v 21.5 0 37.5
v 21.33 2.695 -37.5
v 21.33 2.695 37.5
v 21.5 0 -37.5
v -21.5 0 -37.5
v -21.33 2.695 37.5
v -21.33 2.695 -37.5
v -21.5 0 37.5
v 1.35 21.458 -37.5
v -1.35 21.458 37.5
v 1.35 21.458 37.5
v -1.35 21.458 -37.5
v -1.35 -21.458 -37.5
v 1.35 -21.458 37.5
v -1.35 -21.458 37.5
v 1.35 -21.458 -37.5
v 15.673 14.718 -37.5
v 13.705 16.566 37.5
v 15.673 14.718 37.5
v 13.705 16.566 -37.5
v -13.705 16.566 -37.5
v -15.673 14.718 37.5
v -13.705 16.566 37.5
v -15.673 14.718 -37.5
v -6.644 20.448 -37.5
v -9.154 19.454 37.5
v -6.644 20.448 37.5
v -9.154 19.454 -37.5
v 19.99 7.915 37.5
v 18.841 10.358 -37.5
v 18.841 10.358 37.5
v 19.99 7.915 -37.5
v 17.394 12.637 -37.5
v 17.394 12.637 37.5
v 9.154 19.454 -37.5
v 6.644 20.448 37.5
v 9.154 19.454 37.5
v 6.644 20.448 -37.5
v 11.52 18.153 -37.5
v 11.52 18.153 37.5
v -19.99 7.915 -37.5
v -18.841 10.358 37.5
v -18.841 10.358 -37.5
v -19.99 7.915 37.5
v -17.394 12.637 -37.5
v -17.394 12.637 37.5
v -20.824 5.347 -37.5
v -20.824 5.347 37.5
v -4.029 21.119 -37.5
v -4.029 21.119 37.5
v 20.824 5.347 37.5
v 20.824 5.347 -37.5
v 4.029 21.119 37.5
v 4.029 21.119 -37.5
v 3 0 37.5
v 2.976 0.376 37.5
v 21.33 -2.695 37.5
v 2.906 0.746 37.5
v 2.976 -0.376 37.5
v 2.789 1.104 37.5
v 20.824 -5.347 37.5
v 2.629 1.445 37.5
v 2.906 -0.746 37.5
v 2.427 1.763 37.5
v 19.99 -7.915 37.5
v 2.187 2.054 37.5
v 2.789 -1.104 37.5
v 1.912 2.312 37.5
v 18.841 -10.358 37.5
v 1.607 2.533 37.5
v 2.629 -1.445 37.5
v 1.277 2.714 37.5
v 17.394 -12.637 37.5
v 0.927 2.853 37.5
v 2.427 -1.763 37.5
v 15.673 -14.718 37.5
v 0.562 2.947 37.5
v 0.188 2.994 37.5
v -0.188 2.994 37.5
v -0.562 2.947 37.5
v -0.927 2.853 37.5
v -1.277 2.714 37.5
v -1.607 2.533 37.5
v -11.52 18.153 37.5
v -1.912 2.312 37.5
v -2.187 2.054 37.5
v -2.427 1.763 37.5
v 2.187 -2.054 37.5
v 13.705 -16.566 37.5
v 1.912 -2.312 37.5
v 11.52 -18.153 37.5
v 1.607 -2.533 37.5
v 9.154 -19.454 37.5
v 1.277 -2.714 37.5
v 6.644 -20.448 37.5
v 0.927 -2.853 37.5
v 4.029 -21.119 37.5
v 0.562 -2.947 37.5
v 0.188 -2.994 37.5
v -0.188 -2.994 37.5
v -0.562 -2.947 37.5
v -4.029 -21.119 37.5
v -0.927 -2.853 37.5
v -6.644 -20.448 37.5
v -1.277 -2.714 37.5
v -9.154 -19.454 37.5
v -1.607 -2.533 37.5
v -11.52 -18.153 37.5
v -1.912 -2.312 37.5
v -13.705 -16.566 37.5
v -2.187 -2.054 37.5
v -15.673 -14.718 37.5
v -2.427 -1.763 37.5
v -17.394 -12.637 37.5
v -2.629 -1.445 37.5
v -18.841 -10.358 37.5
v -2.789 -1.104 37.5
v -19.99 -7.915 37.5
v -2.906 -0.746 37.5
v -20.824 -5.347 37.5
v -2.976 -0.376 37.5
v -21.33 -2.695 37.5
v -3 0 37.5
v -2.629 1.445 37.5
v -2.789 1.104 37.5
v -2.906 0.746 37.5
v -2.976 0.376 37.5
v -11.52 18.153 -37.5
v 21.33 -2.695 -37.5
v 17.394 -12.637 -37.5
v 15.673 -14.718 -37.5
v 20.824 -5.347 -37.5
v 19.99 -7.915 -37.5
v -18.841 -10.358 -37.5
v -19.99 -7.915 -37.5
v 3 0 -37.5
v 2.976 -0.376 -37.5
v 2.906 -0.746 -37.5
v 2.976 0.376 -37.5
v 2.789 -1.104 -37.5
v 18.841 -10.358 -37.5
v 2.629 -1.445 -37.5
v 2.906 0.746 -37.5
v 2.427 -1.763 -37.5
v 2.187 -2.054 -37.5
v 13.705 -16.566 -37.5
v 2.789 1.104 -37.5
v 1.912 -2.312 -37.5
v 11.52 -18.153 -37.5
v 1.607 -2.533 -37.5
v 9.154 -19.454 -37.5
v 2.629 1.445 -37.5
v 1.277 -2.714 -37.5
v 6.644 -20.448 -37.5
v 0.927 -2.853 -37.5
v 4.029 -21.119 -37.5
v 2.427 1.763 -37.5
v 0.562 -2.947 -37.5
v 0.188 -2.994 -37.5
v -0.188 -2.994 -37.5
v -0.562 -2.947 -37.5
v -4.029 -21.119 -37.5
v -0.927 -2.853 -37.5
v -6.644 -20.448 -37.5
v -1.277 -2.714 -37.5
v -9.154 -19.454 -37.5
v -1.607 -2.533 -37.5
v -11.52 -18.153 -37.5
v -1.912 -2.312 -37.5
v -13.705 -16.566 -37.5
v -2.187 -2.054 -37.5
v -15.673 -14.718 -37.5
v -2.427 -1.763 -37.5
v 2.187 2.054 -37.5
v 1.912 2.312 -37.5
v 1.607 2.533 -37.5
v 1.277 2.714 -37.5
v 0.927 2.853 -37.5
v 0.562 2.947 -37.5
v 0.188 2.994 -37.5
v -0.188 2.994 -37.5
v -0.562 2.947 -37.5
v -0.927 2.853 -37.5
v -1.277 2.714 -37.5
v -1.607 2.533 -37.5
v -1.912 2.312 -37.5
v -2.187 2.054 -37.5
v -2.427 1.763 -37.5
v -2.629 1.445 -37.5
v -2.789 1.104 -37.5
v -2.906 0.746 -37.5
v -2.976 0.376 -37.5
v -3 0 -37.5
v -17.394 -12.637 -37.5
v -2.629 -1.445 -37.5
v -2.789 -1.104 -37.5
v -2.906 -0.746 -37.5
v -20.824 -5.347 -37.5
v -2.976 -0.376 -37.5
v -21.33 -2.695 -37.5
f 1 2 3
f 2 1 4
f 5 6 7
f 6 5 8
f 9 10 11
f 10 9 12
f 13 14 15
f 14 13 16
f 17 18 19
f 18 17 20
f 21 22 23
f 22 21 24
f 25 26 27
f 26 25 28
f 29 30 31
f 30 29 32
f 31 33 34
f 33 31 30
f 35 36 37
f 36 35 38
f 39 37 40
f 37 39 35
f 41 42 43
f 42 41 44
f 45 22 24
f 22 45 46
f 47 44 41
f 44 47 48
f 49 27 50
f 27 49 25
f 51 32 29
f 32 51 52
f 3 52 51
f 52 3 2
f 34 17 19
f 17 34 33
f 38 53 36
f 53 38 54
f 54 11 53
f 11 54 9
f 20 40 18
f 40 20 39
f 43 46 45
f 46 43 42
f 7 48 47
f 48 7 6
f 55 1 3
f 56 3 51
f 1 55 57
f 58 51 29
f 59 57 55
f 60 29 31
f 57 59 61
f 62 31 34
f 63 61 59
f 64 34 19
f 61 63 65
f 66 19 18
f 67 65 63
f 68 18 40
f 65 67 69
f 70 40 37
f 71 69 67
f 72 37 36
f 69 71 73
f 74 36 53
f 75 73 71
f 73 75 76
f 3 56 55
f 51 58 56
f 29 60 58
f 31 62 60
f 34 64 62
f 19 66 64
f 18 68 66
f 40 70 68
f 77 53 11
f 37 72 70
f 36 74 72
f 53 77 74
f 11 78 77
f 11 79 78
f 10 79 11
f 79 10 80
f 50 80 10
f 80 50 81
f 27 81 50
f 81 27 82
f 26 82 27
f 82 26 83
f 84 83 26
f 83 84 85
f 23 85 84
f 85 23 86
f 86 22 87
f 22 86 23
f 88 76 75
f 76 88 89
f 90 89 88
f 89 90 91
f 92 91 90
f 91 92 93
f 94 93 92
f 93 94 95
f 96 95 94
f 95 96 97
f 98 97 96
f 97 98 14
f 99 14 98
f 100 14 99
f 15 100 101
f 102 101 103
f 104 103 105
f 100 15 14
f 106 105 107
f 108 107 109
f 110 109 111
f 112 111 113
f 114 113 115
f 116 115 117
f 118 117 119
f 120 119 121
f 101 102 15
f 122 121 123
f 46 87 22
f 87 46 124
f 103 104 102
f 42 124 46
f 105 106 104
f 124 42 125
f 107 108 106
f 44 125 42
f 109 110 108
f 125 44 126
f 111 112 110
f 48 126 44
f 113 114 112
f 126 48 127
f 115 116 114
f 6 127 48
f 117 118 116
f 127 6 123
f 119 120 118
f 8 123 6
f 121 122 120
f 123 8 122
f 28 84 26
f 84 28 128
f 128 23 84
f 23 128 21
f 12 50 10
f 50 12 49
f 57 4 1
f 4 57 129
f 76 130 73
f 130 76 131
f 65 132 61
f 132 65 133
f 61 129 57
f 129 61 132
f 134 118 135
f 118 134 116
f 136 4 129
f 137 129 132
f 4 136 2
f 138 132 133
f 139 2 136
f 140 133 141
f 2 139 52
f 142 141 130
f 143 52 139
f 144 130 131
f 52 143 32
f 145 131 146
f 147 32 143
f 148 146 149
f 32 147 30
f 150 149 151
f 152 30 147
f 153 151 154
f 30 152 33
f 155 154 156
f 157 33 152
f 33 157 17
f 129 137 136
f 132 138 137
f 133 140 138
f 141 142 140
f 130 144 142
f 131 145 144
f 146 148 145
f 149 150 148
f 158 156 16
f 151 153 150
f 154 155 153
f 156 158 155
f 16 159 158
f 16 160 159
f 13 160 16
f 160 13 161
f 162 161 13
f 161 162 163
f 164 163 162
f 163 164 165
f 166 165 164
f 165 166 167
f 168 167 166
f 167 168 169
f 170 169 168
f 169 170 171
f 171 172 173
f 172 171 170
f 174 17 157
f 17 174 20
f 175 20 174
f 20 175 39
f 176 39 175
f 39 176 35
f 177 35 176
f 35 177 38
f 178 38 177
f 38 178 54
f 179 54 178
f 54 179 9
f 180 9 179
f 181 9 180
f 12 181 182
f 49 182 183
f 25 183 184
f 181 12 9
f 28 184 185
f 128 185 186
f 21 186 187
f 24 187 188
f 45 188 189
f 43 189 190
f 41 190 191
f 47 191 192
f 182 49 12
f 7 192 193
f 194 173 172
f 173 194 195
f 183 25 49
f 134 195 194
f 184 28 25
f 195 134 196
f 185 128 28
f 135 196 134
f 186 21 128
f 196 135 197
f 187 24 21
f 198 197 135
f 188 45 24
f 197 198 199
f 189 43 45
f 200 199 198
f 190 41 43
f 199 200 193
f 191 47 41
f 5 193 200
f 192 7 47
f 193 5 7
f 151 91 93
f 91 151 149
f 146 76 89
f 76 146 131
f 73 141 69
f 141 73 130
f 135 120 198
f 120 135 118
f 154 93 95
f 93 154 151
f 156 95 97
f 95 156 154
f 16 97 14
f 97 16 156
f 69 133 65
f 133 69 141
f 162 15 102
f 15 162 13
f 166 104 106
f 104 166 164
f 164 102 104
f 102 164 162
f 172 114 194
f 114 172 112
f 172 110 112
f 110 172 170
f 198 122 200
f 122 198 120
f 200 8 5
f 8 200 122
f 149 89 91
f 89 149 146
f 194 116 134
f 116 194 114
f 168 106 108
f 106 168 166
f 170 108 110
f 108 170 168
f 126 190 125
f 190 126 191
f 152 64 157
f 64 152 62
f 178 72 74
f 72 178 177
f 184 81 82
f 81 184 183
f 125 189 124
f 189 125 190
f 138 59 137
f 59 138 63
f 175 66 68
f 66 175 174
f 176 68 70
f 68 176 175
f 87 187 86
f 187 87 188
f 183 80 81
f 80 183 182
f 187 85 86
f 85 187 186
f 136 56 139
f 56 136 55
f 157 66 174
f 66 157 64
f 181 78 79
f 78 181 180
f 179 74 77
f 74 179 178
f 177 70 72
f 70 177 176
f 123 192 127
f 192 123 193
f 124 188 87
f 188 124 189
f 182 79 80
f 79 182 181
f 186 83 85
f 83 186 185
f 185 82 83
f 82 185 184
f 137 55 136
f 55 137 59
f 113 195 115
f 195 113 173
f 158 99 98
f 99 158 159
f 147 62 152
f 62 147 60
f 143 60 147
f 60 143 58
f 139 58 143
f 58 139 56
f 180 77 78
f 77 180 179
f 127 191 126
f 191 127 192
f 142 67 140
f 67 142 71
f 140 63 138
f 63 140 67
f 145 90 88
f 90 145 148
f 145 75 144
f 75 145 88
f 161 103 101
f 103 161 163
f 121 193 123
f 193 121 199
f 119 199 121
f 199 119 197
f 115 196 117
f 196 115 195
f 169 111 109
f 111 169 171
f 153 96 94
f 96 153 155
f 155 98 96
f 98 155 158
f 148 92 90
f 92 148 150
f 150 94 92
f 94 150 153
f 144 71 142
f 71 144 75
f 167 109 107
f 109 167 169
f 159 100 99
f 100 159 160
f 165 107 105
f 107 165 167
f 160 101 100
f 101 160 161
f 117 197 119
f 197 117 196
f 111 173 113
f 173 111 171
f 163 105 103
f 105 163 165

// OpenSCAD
$fn = 50;


difference() {
	union() {
		translate(v = [0, 0, -37.5000000000]) {
			cylinder(h = 75, r = 21.5000000000);
		}
	}
	union() {
		translate(v = [0, 0, -100.0000000000]) {
			cylinder(h = 200, r = 3);
		}
	}
}
